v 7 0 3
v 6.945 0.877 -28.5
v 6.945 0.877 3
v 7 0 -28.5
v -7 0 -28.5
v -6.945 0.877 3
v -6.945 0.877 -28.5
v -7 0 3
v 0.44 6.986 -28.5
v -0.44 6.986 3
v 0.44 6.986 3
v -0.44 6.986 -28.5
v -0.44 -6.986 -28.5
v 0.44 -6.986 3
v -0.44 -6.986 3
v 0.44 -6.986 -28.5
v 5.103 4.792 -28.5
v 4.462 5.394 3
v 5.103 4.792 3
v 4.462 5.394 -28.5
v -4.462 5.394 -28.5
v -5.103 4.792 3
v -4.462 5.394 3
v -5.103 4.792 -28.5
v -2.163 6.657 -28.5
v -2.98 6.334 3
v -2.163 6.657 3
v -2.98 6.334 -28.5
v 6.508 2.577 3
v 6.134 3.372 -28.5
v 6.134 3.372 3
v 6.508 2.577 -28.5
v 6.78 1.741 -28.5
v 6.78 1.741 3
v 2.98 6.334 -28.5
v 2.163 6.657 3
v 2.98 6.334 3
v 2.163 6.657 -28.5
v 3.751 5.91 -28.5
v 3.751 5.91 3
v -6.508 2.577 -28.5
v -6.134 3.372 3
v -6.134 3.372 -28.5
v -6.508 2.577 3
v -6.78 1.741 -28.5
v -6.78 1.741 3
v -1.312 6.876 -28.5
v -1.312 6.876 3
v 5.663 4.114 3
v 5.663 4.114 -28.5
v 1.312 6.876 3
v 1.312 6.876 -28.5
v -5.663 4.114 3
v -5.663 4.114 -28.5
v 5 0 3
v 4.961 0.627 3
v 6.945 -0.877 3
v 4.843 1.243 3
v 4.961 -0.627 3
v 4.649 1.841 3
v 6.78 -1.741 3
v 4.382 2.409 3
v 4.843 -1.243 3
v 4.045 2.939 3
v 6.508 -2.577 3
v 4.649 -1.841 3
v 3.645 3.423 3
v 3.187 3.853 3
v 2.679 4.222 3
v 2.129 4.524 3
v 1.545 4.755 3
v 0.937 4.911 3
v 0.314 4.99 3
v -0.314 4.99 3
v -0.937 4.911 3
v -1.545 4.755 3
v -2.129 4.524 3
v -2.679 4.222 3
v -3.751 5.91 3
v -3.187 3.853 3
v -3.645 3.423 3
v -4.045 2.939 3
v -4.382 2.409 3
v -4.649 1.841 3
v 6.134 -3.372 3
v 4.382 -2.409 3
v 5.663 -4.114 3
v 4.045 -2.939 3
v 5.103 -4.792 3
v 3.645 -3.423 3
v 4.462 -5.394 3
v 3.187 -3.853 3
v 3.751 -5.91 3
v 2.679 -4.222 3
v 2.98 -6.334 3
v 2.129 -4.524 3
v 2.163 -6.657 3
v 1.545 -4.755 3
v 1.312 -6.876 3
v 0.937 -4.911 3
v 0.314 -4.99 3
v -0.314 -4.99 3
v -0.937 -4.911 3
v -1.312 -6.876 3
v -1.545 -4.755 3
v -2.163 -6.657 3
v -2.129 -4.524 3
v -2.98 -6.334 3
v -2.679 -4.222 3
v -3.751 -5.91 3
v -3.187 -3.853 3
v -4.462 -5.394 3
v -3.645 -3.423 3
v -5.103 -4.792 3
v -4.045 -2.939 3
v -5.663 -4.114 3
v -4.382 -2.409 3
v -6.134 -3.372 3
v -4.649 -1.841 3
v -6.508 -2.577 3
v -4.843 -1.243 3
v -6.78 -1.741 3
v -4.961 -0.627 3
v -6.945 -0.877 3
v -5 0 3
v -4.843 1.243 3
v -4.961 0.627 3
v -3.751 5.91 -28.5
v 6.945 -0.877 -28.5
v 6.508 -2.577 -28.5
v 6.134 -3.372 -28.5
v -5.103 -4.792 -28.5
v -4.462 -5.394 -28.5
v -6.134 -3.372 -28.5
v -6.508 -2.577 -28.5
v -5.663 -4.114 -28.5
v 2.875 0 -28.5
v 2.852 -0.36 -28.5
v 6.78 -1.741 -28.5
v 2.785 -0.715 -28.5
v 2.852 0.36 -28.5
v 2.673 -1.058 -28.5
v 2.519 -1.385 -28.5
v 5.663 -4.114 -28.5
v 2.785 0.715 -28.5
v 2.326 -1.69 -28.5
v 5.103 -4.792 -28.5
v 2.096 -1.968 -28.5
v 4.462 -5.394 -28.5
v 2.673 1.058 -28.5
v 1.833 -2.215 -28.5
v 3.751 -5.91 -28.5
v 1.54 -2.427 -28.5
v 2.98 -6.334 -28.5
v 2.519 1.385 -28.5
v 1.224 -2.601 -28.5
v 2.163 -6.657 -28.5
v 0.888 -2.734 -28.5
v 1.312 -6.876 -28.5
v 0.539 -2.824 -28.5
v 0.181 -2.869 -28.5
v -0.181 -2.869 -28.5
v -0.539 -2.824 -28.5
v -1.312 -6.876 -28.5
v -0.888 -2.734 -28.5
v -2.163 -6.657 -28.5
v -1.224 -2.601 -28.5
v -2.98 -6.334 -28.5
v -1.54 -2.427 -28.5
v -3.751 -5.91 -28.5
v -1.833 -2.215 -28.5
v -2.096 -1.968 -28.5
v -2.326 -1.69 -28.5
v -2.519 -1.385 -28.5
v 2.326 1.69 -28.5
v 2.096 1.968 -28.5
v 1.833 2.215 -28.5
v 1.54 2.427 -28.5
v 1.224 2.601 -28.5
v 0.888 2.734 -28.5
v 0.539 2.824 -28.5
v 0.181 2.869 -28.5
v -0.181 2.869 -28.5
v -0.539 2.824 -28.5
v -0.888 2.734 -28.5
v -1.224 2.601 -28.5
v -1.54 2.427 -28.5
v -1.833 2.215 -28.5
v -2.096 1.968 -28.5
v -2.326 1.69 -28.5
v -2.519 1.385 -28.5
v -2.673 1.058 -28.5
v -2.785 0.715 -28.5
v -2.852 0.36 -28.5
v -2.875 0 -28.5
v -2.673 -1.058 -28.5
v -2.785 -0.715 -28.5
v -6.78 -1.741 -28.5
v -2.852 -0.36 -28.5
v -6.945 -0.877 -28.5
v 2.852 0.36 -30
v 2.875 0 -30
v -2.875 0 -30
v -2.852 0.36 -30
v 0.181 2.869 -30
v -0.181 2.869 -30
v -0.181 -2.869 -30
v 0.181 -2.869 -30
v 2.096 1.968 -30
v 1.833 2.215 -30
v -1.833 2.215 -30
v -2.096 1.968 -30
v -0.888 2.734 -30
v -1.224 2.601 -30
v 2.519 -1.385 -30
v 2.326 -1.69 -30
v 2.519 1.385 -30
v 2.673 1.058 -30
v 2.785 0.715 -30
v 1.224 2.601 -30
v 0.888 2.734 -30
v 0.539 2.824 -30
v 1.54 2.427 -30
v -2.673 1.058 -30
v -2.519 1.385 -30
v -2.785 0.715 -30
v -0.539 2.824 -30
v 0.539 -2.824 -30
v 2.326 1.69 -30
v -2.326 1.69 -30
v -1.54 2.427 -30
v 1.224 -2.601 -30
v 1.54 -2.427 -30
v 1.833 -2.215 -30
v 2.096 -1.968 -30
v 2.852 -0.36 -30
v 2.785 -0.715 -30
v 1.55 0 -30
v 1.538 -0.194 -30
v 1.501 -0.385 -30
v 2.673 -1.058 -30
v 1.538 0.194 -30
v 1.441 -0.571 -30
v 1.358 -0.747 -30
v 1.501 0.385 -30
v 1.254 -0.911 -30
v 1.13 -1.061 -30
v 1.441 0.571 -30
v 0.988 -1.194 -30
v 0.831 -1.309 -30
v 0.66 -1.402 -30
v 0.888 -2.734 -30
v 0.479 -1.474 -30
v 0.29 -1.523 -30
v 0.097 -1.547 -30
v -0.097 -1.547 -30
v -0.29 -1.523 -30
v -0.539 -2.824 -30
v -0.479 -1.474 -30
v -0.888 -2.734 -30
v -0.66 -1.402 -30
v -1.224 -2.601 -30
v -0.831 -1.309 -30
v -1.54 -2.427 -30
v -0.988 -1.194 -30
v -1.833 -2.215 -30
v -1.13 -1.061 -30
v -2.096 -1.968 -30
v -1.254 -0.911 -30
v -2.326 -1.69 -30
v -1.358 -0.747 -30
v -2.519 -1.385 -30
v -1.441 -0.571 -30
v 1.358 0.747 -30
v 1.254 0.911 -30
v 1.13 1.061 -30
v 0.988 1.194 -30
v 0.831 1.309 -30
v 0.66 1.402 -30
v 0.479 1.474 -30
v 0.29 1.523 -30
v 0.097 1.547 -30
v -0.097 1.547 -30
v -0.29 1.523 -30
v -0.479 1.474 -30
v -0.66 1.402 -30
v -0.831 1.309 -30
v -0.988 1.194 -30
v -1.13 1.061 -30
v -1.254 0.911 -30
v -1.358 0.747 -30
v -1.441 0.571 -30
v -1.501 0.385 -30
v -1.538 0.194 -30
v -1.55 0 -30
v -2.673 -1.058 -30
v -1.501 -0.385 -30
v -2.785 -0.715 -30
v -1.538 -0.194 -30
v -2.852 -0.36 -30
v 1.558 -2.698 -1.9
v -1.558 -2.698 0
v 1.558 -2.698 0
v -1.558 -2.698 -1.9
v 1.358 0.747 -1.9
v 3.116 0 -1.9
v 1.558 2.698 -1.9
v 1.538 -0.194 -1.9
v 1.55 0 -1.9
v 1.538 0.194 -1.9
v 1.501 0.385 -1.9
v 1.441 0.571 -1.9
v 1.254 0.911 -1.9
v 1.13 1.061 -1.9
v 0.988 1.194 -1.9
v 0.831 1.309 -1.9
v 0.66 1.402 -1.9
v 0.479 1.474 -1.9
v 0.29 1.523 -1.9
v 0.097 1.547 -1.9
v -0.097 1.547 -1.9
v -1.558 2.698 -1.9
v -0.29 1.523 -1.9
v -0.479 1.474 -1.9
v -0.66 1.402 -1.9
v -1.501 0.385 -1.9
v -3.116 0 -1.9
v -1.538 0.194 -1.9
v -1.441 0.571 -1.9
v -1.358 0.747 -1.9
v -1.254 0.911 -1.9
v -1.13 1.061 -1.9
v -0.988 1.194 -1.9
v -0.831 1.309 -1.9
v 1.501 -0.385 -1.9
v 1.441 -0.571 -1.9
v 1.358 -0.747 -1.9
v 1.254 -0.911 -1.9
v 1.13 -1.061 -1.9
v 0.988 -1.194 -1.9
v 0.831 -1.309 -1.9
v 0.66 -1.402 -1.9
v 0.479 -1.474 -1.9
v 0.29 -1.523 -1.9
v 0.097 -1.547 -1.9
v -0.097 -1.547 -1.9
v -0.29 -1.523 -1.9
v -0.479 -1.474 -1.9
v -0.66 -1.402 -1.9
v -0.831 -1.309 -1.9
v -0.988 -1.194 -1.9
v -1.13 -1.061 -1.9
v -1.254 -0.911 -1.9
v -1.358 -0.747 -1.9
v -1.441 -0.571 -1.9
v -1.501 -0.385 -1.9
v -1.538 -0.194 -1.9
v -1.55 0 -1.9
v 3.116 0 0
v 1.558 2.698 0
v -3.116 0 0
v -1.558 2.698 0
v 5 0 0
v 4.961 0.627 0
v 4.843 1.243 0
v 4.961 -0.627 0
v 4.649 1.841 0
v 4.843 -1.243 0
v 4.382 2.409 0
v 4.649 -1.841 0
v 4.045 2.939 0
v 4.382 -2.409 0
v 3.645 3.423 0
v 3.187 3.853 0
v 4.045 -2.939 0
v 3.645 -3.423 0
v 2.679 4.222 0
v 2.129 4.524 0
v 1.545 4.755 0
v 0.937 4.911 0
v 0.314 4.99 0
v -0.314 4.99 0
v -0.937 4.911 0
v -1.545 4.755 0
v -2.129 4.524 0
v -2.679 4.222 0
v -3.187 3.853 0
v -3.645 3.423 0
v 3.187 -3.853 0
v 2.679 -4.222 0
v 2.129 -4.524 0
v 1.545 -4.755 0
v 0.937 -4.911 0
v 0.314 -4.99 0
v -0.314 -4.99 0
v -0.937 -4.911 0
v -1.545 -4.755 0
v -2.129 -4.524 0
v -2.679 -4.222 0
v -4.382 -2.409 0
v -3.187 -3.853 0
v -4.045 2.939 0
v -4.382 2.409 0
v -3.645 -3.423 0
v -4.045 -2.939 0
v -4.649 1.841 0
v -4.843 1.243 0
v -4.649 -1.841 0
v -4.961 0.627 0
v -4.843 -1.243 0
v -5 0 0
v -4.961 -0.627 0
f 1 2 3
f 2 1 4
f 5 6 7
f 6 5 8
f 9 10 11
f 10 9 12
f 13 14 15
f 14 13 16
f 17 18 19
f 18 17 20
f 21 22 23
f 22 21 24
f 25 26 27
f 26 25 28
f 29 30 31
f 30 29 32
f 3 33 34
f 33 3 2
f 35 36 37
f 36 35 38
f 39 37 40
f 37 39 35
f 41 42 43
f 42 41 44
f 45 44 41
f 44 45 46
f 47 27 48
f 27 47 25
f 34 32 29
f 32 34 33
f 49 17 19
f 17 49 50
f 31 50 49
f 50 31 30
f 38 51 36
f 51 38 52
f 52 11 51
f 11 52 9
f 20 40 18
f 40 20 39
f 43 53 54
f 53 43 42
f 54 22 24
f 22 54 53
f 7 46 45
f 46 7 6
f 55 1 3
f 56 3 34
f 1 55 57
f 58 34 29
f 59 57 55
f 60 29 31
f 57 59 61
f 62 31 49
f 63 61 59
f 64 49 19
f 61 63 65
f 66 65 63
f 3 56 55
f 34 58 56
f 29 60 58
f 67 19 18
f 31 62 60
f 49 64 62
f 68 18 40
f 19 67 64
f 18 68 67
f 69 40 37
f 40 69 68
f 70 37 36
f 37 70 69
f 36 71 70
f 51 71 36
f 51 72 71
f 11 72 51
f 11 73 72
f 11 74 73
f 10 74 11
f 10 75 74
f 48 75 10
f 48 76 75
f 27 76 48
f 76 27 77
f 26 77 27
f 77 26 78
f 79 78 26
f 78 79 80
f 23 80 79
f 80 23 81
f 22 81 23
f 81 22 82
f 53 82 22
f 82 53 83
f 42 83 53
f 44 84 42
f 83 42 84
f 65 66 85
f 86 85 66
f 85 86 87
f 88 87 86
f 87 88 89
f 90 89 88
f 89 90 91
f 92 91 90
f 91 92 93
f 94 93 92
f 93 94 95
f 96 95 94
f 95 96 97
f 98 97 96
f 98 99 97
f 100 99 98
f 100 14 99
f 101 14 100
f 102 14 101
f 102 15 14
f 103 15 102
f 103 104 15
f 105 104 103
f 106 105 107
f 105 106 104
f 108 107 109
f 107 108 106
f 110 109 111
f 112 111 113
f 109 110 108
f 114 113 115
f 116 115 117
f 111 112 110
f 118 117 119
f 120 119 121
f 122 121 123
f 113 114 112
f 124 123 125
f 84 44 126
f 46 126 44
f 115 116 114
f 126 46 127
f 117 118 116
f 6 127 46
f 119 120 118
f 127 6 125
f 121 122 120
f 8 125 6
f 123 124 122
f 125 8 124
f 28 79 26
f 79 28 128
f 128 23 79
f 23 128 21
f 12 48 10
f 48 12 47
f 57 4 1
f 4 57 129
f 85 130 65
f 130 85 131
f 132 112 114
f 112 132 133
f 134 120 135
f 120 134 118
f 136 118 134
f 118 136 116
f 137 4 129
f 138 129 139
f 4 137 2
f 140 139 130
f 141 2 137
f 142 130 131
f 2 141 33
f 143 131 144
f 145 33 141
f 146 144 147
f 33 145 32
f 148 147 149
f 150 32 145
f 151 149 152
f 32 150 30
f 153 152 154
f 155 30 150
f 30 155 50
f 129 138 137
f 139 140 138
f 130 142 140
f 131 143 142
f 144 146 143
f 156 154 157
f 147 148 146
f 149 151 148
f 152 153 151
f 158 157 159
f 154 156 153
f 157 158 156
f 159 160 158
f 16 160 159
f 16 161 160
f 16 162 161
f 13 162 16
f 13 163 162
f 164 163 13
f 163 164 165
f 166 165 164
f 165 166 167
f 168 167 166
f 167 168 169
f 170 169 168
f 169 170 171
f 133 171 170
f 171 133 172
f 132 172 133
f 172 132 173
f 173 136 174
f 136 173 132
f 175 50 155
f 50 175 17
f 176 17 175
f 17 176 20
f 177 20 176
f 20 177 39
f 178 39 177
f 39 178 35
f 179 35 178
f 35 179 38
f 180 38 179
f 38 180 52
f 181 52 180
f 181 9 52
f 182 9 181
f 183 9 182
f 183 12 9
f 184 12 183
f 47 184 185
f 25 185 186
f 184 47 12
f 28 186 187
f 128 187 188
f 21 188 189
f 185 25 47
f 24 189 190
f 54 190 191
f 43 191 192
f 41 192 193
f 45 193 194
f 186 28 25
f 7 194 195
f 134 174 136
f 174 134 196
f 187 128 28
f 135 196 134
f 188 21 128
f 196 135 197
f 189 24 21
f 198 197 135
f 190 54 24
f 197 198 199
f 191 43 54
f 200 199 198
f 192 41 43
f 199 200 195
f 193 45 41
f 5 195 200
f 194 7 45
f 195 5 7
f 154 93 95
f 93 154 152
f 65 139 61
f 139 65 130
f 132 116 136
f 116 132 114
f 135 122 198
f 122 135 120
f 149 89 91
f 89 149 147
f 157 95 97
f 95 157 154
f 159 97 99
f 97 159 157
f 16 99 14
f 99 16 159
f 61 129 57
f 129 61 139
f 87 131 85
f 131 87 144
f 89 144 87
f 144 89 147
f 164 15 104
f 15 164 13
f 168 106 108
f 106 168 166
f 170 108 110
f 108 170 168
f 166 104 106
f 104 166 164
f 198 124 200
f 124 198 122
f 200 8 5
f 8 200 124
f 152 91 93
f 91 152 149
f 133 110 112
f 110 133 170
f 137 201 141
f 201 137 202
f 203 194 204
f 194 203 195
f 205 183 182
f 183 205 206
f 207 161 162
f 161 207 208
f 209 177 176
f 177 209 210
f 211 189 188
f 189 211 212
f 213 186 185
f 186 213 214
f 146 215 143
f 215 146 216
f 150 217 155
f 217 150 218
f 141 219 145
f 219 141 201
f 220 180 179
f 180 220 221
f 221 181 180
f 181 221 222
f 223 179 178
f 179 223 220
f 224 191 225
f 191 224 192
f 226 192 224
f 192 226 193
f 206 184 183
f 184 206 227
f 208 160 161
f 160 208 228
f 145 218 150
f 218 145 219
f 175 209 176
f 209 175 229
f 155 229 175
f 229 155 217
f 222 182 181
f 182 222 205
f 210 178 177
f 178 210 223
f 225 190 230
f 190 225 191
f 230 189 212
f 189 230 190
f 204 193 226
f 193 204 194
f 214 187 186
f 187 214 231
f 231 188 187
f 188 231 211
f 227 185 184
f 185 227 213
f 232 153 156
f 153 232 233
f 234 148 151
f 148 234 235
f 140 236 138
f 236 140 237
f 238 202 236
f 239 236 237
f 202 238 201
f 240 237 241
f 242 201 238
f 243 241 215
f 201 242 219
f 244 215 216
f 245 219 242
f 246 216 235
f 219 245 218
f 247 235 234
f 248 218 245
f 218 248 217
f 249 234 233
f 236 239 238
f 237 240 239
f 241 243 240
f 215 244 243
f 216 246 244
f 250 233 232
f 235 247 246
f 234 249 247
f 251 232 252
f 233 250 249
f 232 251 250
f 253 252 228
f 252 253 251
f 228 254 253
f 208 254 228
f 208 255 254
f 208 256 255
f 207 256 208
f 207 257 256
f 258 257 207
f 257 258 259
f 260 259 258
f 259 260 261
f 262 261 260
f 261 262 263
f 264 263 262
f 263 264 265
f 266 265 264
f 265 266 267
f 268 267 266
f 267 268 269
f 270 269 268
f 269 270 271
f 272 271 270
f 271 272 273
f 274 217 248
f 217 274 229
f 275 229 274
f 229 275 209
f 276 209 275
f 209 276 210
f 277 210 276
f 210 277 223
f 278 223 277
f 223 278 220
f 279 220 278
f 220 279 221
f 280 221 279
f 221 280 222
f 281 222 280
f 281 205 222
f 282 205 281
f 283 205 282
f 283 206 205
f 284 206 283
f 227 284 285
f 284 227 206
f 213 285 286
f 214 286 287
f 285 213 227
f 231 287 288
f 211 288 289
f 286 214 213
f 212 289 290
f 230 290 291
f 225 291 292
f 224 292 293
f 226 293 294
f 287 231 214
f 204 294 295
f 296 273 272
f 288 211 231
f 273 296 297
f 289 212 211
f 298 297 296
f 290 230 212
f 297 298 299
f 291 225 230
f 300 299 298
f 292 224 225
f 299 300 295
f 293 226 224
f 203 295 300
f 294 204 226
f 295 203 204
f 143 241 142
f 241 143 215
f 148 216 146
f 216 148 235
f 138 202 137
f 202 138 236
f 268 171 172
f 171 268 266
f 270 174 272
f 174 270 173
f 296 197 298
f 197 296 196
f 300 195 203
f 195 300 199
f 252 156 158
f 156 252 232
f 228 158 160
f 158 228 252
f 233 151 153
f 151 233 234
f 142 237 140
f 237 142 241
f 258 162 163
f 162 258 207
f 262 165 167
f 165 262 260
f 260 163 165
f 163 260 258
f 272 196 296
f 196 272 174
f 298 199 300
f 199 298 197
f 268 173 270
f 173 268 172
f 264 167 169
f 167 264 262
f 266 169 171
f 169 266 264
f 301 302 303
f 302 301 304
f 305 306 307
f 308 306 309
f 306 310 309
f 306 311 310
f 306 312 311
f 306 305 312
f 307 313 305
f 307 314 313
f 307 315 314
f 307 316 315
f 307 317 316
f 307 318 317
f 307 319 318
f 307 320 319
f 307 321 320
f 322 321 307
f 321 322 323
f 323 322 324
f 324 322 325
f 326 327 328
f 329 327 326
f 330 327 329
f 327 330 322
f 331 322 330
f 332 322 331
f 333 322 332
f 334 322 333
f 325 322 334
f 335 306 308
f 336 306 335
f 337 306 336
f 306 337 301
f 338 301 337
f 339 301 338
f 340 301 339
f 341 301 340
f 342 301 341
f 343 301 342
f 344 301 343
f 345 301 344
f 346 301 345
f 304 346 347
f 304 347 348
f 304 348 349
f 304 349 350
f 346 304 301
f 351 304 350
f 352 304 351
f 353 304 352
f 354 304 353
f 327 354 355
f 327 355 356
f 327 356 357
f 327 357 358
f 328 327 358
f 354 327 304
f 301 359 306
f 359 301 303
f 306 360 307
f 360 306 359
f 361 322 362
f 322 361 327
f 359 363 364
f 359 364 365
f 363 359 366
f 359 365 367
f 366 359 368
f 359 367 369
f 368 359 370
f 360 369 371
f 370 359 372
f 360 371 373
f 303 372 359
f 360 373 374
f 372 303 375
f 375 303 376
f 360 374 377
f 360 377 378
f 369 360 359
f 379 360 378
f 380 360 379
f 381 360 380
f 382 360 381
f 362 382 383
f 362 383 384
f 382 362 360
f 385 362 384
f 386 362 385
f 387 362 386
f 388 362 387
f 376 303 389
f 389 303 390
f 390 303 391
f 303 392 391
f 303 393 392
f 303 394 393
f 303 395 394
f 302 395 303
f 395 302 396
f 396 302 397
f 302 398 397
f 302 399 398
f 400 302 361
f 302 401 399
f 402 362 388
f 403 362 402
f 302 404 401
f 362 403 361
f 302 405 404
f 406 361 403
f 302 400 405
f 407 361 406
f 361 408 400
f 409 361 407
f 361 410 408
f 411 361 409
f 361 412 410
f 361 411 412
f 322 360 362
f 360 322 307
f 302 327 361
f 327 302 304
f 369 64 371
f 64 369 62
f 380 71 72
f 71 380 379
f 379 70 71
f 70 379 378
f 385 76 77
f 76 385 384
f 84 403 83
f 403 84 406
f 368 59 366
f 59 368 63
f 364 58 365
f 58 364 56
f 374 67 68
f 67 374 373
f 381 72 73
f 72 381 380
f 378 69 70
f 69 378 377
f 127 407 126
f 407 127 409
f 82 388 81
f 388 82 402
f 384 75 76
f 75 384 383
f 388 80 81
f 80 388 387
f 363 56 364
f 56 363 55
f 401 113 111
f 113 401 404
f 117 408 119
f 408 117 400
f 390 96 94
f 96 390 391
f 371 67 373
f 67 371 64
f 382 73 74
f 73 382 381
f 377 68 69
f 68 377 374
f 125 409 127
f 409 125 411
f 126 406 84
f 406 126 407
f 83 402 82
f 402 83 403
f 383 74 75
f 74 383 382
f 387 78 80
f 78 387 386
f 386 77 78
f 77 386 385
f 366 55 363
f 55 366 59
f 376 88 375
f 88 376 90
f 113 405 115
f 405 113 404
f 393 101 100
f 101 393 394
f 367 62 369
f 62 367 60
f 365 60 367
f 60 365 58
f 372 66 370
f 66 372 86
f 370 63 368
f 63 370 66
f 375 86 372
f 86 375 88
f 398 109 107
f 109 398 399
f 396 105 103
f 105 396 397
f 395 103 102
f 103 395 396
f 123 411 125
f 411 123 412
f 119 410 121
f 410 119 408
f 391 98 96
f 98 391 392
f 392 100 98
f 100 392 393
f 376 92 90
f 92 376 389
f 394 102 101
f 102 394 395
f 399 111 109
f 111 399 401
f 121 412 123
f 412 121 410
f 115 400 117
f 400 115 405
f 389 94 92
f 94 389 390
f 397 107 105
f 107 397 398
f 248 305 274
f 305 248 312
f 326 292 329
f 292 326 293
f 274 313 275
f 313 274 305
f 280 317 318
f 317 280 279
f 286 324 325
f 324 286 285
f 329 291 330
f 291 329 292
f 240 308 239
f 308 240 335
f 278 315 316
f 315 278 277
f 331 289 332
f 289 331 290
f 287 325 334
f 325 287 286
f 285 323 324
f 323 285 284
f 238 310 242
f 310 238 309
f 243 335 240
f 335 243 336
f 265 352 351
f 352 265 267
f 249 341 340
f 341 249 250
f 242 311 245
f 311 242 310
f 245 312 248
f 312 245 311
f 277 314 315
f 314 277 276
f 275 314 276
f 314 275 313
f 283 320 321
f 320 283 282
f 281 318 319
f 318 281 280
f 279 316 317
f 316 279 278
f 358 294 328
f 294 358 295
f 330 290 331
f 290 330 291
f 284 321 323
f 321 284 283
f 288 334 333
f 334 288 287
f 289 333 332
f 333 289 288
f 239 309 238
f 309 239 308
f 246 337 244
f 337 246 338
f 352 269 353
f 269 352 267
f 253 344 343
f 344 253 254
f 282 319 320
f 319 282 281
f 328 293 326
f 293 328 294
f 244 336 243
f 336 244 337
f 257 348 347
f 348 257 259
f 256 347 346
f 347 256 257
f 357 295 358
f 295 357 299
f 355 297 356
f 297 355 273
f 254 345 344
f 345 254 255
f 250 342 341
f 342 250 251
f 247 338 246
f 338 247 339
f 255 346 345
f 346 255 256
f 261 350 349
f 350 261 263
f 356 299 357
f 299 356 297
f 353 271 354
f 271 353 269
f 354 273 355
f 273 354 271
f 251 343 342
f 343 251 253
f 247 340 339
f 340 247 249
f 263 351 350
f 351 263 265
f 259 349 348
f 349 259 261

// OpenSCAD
$fn = 50;

difference() {
	union() {
		translate(v = [0, 0, -28.5]) {
			cylinder(h = 31.5, r = 7.0);
		}
		#translate(v = [0, 0, -30.0]) {
			cylinder(h = 30, r = 2.875);
		}
	}
	union() {
		translate(v = [0, 0, 0]) {
			rotate(a = [0, 0, 0]) {
				difference() {
					union() {
						translate(v = [0, 0, -1.9]) {
							linear_extrude(height = 1.9) {
								polygon(points = [[3.1158, 0.0], [1.5579000000000005, 2.698361953111554], [-1.5578999999999994, 2.6983619531115544], [-3.1158, 3.815754496783323e-16], [-1.5579000000000014, -2.6983619531115535], [1.557899999999998, -2.6983619531115552]]);
							}
						}
					}
					union();
				}
			}
		}
		#cylinder(h = 3, r = 5.0);
		#translate(v = [0, 0, -100.0]) {
			cylinder(h = 200, r = 1.55);
		}
	}
}
